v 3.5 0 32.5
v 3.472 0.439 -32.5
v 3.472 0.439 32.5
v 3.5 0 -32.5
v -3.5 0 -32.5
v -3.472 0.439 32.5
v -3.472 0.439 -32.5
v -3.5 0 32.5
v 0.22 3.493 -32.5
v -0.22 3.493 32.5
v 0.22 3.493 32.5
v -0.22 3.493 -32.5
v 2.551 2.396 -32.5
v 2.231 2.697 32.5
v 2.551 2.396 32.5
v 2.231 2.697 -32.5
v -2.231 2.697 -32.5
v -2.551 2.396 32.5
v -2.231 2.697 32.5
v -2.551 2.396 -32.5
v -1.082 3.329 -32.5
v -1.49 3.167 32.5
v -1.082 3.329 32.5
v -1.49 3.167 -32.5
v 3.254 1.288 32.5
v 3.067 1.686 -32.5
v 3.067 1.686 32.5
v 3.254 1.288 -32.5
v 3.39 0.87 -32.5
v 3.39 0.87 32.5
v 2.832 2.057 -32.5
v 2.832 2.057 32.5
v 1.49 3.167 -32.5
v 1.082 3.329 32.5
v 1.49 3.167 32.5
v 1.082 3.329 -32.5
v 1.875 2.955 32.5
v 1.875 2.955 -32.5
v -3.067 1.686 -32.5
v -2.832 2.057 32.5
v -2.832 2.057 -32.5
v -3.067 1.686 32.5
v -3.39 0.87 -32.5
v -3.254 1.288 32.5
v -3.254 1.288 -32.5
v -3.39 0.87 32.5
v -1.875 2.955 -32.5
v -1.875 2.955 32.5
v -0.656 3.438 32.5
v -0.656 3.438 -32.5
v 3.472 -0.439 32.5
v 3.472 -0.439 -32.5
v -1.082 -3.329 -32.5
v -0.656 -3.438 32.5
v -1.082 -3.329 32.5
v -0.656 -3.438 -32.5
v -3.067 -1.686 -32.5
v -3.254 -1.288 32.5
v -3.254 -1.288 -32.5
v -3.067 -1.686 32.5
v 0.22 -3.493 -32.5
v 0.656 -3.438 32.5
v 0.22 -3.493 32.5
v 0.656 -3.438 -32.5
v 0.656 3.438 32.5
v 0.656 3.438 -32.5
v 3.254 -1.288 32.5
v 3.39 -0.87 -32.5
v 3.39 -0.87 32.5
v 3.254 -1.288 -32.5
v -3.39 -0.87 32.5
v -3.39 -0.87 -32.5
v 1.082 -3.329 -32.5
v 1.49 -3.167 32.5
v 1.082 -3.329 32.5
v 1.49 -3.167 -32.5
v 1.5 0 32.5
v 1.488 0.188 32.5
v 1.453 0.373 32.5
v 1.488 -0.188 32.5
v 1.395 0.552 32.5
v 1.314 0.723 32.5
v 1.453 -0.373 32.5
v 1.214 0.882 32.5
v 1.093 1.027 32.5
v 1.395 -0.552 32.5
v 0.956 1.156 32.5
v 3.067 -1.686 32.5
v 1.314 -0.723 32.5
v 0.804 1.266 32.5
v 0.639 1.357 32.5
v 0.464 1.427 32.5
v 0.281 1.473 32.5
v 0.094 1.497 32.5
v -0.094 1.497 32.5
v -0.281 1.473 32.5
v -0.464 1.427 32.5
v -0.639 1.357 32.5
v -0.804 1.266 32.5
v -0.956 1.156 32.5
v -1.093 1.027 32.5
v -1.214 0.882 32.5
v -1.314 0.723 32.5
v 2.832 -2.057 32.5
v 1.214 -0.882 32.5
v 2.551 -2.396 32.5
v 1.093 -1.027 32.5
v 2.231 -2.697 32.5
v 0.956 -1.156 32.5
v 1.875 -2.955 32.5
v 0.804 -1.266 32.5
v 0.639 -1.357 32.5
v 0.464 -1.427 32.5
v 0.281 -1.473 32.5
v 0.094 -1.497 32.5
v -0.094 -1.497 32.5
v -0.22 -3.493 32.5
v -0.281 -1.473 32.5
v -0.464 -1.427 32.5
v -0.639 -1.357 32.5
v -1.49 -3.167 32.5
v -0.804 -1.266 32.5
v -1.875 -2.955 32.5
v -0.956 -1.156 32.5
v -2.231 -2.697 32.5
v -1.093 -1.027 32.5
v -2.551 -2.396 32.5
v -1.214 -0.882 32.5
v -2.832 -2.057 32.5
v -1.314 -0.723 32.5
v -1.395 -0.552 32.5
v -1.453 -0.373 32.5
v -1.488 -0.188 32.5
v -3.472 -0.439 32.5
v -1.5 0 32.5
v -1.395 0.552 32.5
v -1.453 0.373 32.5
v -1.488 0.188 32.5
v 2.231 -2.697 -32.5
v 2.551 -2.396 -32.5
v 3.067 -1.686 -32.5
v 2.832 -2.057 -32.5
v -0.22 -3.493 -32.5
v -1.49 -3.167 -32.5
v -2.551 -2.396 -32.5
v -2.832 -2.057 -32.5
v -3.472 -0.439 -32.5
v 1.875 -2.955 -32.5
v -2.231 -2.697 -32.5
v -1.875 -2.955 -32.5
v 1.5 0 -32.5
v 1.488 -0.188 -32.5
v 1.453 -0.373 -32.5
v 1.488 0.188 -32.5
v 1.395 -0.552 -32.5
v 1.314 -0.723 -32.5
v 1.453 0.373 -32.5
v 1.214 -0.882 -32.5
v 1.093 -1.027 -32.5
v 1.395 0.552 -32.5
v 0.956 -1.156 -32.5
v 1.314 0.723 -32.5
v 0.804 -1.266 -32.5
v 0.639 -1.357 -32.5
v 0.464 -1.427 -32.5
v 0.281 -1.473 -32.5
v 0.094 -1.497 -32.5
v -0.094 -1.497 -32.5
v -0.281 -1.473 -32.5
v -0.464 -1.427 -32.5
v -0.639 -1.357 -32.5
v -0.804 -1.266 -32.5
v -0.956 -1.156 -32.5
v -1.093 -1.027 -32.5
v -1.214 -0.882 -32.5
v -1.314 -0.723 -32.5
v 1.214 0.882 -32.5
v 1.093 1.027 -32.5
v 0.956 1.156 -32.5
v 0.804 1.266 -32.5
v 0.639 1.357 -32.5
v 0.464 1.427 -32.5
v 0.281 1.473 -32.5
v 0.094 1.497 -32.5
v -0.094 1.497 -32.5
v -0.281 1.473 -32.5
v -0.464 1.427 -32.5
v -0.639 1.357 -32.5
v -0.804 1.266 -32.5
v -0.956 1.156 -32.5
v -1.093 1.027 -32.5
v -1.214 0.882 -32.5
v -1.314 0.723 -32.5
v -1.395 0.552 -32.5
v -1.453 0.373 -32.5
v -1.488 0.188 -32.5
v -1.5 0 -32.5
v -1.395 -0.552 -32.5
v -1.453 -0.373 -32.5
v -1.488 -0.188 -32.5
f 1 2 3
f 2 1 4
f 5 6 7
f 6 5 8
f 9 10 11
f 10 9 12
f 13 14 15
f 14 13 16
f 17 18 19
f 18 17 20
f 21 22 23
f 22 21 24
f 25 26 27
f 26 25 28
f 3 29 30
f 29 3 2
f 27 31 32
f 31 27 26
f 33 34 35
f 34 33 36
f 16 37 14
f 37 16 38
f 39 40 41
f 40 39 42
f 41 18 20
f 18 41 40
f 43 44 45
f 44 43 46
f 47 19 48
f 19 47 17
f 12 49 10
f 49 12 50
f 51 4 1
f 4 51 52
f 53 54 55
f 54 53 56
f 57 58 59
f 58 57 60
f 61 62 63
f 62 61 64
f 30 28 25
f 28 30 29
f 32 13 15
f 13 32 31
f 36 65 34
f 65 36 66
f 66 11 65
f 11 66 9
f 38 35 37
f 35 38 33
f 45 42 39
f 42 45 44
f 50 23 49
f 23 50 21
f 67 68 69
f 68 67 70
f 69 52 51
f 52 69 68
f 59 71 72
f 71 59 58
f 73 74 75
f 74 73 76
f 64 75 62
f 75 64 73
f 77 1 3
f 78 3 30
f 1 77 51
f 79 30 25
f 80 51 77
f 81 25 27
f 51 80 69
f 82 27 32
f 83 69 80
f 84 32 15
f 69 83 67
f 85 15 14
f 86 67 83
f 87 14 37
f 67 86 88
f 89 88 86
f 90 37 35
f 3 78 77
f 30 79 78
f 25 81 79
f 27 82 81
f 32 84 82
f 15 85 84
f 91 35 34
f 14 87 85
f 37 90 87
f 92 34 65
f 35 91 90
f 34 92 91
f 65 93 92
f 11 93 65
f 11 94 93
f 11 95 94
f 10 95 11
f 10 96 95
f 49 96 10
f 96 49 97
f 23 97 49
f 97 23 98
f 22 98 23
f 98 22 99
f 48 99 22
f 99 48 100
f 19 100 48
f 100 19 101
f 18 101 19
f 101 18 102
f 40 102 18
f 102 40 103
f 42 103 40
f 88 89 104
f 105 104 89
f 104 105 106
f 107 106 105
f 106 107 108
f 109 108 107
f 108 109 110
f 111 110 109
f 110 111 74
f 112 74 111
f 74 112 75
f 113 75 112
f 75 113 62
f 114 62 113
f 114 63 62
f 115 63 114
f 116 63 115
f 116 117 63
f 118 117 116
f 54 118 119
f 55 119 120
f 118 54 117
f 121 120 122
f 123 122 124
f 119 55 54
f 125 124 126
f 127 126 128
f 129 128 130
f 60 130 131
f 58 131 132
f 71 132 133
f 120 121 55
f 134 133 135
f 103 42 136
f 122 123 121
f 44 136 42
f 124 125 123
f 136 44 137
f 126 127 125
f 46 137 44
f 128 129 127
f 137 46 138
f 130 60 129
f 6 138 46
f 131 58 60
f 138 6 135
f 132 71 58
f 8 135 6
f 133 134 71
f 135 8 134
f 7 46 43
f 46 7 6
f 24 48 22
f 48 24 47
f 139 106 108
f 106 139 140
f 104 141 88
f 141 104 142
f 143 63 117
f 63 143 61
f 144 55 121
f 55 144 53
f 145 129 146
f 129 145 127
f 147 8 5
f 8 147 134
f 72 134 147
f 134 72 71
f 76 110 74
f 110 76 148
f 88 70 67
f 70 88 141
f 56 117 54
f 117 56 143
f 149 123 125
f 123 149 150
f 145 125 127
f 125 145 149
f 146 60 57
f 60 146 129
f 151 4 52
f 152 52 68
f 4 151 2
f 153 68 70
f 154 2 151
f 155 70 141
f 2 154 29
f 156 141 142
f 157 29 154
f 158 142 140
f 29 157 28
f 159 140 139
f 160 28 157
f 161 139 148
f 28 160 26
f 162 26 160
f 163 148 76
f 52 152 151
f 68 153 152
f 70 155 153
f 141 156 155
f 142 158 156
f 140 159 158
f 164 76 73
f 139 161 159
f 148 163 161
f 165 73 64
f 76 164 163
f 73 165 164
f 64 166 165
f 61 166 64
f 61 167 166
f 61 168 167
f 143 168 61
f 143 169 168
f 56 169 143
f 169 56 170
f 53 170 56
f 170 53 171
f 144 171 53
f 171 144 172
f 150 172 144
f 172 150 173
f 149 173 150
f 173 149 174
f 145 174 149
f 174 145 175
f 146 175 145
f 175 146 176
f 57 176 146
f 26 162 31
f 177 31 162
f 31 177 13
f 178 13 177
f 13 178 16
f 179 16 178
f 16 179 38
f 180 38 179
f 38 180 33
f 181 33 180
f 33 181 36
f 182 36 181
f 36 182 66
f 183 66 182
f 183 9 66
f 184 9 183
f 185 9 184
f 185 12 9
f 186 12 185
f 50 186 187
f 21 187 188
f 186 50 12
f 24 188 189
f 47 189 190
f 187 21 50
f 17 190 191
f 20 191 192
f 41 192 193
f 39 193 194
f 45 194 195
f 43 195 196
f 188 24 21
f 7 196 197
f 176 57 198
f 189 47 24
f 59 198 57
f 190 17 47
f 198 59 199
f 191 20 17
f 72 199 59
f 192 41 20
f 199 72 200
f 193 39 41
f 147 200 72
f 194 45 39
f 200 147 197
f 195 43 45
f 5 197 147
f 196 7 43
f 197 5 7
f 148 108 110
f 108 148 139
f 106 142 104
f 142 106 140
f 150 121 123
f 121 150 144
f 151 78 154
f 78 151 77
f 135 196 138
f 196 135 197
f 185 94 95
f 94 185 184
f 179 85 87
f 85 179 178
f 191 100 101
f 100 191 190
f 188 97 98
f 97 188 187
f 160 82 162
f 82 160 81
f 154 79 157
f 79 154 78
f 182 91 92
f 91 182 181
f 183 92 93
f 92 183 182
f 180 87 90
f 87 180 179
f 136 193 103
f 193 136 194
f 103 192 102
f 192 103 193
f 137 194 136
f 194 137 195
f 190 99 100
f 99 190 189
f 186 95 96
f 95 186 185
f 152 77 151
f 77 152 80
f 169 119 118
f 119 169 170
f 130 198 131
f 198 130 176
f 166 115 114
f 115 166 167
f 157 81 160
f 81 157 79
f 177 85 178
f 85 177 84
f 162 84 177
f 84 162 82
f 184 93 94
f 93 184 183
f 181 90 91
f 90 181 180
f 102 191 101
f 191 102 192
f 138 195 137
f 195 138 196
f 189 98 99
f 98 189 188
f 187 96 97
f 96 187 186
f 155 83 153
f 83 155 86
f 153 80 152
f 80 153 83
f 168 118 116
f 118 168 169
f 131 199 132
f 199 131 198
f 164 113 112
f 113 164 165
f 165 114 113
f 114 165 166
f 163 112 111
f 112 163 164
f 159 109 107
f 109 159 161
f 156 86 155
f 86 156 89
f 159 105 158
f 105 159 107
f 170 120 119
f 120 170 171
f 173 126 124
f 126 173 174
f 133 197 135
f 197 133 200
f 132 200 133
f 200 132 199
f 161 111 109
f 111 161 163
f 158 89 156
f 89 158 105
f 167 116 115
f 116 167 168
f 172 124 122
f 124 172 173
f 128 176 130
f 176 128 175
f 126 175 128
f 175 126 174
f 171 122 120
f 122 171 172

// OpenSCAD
$fn = 50;


difference() {
	union() {
		translate(v = [0, 0, -32.5000000000]) {
			cylinder(h = 65, r = 3.5000000000);
		}
	}
	union() {
		translate(v = [0, 0, -100.0000000000]) {
			cylinder(h = 200, r = 1.5000000000);
		}
	}
}
